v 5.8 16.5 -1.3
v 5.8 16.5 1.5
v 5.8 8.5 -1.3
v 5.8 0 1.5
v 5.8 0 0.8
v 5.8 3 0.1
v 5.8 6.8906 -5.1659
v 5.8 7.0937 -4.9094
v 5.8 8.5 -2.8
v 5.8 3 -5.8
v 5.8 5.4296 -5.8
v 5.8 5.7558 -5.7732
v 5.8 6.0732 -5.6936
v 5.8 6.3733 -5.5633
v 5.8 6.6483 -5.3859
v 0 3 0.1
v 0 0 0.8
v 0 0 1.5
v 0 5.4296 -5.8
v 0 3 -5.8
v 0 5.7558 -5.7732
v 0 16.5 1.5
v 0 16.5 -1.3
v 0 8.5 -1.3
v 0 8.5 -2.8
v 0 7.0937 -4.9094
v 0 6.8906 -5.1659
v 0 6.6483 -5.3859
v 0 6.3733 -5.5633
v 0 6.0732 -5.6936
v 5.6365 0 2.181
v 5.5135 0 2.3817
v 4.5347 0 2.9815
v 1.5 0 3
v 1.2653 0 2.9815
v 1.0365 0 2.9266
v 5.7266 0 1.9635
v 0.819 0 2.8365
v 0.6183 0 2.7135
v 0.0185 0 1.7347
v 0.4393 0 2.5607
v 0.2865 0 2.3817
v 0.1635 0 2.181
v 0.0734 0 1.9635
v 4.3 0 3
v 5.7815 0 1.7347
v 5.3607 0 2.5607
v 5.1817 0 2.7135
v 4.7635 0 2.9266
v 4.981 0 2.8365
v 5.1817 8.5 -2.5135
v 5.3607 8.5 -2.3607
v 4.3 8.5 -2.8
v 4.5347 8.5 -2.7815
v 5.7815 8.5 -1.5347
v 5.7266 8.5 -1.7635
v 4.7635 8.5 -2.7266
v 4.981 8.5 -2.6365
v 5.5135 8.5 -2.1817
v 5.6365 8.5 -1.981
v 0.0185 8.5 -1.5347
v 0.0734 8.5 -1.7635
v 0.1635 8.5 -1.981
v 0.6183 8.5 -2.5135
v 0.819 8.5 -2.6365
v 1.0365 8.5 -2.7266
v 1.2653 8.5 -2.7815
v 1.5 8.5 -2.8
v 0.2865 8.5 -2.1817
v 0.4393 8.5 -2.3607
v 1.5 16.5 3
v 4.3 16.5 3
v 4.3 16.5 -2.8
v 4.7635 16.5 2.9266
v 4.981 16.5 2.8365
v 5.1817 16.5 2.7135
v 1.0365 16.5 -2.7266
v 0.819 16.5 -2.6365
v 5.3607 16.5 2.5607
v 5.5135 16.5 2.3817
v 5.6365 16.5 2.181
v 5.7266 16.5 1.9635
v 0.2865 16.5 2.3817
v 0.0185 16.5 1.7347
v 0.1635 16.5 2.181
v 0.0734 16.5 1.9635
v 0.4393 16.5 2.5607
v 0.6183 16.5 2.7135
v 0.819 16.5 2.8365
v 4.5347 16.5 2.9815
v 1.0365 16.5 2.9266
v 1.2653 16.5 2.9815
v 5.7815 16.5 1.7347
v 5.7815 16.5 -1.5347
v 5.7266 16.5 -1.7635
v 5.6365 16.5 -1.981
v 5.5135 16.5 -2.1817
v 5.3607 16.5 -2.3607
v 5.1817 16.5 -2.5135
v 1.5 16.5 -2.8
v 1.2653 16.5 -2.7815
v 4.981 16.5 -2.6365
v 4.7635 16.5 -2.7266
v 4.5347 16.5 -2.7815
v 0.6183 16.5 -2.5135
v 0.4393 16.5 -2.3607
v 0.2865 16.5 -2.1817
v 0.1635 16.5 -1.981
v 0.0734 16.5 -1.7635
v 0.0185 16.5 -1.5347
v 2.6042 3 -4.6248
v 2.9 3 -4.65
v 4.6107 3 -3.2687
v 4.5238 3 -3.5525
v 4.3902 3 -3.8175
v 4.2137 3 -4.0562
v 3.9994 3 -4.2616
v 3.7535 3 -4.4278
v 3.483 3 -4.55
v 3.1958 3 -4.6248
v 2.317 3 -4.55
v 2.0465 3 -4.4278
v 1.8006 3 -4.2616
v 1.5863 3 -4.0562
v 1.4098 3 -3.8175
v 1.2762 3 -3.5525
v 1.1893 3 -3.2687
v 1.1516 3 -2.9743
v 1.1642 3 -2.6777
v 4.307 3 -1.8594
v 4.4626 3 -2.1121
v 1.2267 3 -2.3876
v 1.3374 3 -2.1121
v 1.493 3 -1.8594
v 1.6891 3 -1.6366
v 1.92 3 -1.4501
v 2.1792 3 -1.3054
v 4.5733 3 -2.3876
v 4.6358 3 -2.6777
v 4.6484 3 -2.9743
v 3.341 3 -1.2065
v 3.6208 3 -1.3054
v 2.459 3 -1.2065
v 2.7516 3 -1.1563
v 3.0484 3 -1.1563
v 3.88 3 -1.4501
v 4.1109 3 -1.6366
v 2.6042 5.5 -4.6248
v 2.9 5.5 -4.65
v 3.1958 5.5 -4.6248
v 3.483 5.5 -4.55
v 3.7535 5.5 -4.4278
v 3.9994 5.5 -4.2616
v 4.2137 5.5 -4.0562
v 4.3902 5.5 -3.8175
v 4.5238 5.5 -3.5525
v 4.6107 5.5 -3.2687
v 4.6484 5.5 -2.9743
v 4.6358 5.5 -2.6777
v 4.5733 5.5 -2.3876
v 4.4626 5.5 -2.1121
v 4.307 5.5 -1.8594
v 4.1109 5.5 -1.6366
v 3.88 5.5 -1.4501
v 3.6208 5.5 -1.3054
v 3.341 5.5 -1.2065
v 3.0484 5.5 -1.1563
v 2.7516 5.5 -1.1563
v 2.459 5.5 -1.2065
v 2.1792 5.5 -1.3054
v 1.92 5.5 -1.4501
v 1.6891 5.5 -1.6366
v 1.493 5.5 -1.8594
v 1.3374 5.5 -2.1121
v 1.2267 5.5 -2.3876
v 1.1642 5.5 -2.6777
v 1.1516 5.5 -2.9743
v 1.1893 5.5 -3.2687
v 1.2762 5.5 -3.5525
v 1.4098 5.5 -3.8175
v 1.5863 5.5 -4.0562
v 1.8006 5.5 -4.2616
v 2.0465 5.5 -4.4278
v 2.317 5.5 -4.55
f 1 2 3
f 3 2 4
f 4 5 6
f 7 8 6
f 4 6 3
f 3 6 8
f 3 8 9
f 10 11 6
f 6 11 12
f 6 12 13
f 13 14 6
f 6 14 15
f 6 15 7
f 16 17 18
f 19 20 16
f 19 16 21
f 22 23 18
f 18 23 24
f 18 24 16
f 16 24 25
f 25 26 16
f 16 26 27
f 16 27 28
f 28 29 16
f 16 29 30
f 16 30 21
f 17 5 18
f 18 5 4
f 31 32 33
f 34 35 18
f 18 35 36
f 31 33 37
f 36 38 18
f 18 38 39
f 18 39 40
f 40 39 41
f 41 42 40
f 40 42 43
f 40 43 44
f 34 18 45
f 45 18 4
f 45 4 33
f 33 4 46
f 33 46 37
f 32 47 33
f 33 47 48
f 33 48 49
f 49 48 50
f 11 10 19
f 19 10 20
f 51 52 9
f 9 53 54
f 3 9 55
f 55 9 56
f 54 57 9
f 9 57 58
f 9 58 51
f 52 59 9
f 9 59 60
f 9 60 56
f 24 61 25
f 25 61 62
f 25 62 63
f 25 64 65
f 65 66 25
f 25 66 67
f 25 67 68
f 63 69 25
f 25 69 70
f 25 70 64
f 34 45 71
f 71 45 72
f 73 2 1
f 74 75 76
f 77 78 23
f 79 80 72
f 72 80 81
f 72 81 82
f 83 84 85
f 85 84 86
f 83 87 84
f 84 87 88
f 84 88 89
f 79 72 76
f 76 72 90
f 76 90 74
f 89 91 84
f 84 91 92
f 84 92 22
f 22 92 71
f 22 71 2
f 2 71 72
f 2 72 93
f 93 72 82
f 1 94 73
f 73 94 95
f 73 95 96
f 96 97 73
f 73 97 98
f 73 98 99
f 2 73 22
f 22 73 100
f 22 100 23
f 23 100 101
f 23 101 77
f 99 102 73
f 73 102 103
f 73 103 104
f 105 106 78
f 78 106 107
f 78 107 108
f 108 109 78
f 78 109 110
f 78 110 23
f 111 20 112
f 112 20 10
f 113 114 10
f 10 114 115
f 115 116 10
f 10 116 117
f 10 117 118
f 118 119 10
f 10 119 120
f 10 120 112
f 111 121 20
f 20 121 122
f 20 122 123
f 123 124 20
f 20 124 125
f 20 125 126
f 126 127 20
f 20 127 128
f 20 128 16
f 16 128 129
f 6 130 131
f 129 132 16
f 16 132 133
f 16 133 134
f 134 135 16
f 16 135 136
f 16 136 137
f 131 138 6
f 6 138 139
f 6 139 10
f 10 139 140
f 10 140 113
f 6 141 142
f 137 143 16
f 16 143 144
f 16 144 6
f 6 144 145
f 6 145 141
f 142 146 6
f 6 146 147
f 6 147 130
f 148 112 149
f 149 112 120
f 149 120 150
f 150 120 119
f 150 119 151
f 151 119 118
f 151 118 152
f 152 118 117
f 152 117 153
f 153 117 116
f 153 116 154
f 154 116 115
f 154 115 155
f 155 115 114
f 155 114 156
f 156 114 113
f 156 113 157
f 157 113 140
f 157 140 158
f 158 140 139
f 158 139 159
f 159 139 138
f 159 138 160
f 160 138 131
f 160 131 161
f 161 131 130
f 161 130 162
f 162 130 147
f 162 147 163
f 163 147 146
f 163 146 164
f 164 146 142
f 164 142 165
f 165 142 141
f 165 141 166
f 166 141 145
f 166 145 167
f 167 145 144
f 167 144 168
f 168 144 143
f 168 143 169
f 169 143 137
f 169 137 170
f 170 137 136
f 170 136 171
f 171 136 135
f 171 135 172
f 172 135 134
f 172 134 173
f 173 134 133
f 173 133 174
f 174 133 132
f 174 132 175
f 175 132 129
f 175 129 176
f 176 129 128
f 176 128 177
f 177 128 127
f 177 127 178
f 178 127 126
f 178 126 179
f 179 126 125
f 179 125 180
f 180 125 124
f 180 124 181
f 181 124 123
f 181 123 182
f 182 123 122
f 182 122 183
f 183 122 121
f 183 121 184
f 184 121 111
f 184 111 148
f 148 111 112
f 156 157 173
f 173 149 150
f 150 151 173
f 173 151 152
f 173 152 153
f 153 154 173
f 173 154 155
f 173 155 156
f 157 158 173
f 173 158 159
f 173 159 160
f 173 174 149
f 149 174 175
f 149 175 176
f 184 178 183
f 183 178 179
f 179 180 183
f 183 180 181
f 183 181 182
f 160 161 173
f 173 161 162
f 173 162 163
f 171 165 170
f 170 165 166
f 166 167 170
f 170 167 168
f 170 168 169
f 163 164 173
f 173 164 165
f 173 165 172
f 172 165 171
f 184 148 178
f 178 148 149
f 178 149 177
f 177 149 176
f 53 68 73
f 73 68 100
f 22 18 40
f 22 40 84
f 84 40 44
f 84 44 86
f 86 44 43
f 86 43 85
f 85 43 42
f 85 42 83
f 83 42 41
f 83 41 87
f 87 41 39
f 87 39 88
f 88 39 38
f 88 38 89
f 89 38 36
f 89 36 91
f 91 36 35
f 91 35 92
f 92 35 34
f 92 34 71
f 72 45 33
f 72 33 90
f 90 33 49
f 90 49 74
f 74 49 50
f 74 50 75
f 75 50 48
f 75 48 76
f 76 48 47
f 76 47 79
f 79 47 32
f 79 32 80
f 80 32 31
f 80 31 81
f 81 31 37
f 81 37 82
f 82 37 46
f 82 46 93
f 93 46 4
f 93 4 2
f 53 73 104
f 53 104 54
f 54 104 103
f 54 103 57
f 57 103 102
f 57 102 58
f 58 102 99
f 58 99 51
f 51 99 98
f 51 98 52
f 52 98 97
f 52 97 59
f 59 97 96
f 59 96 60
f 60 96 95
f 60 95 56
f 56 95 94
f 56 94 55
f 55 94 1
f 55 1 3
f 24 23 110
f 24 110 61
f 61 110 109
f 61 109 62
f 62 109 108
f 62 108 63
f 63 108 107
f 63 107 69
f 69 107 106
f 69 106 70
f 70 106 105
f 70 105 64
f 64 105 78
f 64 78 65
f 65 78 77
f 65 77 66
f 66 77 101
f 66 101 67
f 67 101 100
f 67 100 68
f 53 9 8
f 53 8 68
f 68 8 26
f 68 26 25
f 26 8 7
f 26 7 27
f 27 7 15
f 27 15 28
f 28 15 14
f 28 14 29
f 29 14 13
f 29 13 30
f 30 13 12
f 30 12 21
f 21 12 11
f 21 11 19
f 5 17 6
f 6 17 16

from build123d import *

# Parameters (mm, degrees)
SKETCH_2_W               = 5.8
SKETCH_2_H               = 8.8
EXTRUDE_1_DEPTH          = 16.5
SKETCH_3_W               = 5.8
SKETCH_3_H               = 5.9
CUT_EXTRUDE_1_DEPTH      = 3
SKETCH_4_R               = 1.75
CUT_EXTRUDE_2_DEPTH      = 2.5
SKETCH_5_W               = 5.8
SKETCH_5_H               = 3
CUT_EXTRUDE_3_DEPTH      = 8
FILLET_1_R               = 1.5
CUT_EXTRUDE_4_DEPTH      = 19.426339843
CUT_EXTRUDE_4_DEPTH_BACK = 19.426339843
FILLET_2_R               = 2
CUT_EXTRUDE_5_DEPTH      = 19.426339843
CUT_EXTRUDE_5_DEPTH_BACK = 19.426339843


with BuildPart() as part:
    # ｽｹｯﾁ2 → ﾎﾞｽ - 押し出し1 (new body)
    with BuildSketch(Plane(origin=(0, 0, 0), x_dir=(1, 0, 0), z_dir=(0, 1, 0))):
        with Locations((2.9, 1.4)):
            Rectangle(SKETCH_2_W, SKETCH_2_H)
    extrude(amount=EXTRUDE_1_DEPTH)

    # ｽｹｯﾁ3 → ｶｯﾄ - 押し出し1 (cut)
    with BuildSketch(Plane.XZ):
        with Locations((2.9, -2.85)):
            Rectangle(SKETCH_3_W, SKETCH_3_H)
    extrude(amount=-CUT_EXTRUDE_1_DEPTH, mode=Mode.SUBTRACT)

    # ｽｹｯﾁ4 → ｶｯﾄ - 押し出し2 (cut)
    with BuildSketch(Plane.XZ.offset(-3)):
        with Locations(Location((2.9, -2.9, 0), (0, 0, 270))):
            Circle(SKETCH_4_R)
    extrude(amount=-CUT_EXTRUDE_2_DEPTH, mode=Mode.SUBTRACT)

    # ｽｹｯﾁ5 → ｶｯﾄ - 押し出し3 (cut)
    with BuildSketch(Plane(origin=(0, 16.5, 0), x_dir=(1, 0, 0), z_dir=(0, 1, 0))):
        with Locations((2.9, 4.3)):
            Rectangle(SKETCH_5_W, SKETCH_5_H)
    extrude(amount=-CUT_EXTRUDE_3_DEPTH, mode=Mode.SUBTRACT)

    # ﾌｨﾚｯﾄ1
    fillet_1_edges = [part.edges().sort_by_distance(p)[0] for p in [
        (0, 12.5, -2.8),
        (5.8, 12.5, -2.8),
        (5.8, 8.25, 3),
        (0, 8.25, 3),
    ]]
    fillet(fillet_1_edges, radius=FILLET_1_R)

    # ｽｹｯﾁ9 → ｶｯﾄ - 押し出し4 (cut, two sides: drawn at the far end of the back side and taken through both)
    with BuildSketch(Plane(origin=(5.8, 0, 0), x_dir=(0, 0, -1), z_dir=(1, 0, 0)).offset(-CUT_EXTRUDE_4_DEPTH_BACK)):
        Polygon((5.8, 8.5), (2.8, 8.5), (5.8, 6.5), align=None)
    extrude(amount=CUT_EXTRUDE_4_DEPTH + CUT_EXTRUDE_4_DEPTH_BACK, mode=Mode.SUBTRACT)

    # ﾌｨﾚｯﾄ2
    fillet_2_edges = [part.edges().sort_by_distance(p)[0] for p in [
        (2.9, 6.5, -5.8),
    ]]
    fillet(fillet_2_edges, radius=FILLET_2_R)

    # ｽｹｯﾁ10 → ｶｯﾄ - 押し出し5 (cut, two sides: drawn at the far end of the back side and taken through both)
    with BuildSketch(Plane(origin=(5.8, 0, 0), x_dir=(0, 0, -1), z_dir=(1, 0, 0)).offset(-CUT_EXTRUDE_5_DEPTH_BACK)):
        Polygon((-0.1, 0), (-0.1, 3), (-0.8, 0), align=None)
    extrude(amount=CUT_EXTRUDE_5_DEPTH + CUT_EXTRUDE_5_DEPTH_BACK, mode=Mode.SUBTRACT)


solid = part.part
